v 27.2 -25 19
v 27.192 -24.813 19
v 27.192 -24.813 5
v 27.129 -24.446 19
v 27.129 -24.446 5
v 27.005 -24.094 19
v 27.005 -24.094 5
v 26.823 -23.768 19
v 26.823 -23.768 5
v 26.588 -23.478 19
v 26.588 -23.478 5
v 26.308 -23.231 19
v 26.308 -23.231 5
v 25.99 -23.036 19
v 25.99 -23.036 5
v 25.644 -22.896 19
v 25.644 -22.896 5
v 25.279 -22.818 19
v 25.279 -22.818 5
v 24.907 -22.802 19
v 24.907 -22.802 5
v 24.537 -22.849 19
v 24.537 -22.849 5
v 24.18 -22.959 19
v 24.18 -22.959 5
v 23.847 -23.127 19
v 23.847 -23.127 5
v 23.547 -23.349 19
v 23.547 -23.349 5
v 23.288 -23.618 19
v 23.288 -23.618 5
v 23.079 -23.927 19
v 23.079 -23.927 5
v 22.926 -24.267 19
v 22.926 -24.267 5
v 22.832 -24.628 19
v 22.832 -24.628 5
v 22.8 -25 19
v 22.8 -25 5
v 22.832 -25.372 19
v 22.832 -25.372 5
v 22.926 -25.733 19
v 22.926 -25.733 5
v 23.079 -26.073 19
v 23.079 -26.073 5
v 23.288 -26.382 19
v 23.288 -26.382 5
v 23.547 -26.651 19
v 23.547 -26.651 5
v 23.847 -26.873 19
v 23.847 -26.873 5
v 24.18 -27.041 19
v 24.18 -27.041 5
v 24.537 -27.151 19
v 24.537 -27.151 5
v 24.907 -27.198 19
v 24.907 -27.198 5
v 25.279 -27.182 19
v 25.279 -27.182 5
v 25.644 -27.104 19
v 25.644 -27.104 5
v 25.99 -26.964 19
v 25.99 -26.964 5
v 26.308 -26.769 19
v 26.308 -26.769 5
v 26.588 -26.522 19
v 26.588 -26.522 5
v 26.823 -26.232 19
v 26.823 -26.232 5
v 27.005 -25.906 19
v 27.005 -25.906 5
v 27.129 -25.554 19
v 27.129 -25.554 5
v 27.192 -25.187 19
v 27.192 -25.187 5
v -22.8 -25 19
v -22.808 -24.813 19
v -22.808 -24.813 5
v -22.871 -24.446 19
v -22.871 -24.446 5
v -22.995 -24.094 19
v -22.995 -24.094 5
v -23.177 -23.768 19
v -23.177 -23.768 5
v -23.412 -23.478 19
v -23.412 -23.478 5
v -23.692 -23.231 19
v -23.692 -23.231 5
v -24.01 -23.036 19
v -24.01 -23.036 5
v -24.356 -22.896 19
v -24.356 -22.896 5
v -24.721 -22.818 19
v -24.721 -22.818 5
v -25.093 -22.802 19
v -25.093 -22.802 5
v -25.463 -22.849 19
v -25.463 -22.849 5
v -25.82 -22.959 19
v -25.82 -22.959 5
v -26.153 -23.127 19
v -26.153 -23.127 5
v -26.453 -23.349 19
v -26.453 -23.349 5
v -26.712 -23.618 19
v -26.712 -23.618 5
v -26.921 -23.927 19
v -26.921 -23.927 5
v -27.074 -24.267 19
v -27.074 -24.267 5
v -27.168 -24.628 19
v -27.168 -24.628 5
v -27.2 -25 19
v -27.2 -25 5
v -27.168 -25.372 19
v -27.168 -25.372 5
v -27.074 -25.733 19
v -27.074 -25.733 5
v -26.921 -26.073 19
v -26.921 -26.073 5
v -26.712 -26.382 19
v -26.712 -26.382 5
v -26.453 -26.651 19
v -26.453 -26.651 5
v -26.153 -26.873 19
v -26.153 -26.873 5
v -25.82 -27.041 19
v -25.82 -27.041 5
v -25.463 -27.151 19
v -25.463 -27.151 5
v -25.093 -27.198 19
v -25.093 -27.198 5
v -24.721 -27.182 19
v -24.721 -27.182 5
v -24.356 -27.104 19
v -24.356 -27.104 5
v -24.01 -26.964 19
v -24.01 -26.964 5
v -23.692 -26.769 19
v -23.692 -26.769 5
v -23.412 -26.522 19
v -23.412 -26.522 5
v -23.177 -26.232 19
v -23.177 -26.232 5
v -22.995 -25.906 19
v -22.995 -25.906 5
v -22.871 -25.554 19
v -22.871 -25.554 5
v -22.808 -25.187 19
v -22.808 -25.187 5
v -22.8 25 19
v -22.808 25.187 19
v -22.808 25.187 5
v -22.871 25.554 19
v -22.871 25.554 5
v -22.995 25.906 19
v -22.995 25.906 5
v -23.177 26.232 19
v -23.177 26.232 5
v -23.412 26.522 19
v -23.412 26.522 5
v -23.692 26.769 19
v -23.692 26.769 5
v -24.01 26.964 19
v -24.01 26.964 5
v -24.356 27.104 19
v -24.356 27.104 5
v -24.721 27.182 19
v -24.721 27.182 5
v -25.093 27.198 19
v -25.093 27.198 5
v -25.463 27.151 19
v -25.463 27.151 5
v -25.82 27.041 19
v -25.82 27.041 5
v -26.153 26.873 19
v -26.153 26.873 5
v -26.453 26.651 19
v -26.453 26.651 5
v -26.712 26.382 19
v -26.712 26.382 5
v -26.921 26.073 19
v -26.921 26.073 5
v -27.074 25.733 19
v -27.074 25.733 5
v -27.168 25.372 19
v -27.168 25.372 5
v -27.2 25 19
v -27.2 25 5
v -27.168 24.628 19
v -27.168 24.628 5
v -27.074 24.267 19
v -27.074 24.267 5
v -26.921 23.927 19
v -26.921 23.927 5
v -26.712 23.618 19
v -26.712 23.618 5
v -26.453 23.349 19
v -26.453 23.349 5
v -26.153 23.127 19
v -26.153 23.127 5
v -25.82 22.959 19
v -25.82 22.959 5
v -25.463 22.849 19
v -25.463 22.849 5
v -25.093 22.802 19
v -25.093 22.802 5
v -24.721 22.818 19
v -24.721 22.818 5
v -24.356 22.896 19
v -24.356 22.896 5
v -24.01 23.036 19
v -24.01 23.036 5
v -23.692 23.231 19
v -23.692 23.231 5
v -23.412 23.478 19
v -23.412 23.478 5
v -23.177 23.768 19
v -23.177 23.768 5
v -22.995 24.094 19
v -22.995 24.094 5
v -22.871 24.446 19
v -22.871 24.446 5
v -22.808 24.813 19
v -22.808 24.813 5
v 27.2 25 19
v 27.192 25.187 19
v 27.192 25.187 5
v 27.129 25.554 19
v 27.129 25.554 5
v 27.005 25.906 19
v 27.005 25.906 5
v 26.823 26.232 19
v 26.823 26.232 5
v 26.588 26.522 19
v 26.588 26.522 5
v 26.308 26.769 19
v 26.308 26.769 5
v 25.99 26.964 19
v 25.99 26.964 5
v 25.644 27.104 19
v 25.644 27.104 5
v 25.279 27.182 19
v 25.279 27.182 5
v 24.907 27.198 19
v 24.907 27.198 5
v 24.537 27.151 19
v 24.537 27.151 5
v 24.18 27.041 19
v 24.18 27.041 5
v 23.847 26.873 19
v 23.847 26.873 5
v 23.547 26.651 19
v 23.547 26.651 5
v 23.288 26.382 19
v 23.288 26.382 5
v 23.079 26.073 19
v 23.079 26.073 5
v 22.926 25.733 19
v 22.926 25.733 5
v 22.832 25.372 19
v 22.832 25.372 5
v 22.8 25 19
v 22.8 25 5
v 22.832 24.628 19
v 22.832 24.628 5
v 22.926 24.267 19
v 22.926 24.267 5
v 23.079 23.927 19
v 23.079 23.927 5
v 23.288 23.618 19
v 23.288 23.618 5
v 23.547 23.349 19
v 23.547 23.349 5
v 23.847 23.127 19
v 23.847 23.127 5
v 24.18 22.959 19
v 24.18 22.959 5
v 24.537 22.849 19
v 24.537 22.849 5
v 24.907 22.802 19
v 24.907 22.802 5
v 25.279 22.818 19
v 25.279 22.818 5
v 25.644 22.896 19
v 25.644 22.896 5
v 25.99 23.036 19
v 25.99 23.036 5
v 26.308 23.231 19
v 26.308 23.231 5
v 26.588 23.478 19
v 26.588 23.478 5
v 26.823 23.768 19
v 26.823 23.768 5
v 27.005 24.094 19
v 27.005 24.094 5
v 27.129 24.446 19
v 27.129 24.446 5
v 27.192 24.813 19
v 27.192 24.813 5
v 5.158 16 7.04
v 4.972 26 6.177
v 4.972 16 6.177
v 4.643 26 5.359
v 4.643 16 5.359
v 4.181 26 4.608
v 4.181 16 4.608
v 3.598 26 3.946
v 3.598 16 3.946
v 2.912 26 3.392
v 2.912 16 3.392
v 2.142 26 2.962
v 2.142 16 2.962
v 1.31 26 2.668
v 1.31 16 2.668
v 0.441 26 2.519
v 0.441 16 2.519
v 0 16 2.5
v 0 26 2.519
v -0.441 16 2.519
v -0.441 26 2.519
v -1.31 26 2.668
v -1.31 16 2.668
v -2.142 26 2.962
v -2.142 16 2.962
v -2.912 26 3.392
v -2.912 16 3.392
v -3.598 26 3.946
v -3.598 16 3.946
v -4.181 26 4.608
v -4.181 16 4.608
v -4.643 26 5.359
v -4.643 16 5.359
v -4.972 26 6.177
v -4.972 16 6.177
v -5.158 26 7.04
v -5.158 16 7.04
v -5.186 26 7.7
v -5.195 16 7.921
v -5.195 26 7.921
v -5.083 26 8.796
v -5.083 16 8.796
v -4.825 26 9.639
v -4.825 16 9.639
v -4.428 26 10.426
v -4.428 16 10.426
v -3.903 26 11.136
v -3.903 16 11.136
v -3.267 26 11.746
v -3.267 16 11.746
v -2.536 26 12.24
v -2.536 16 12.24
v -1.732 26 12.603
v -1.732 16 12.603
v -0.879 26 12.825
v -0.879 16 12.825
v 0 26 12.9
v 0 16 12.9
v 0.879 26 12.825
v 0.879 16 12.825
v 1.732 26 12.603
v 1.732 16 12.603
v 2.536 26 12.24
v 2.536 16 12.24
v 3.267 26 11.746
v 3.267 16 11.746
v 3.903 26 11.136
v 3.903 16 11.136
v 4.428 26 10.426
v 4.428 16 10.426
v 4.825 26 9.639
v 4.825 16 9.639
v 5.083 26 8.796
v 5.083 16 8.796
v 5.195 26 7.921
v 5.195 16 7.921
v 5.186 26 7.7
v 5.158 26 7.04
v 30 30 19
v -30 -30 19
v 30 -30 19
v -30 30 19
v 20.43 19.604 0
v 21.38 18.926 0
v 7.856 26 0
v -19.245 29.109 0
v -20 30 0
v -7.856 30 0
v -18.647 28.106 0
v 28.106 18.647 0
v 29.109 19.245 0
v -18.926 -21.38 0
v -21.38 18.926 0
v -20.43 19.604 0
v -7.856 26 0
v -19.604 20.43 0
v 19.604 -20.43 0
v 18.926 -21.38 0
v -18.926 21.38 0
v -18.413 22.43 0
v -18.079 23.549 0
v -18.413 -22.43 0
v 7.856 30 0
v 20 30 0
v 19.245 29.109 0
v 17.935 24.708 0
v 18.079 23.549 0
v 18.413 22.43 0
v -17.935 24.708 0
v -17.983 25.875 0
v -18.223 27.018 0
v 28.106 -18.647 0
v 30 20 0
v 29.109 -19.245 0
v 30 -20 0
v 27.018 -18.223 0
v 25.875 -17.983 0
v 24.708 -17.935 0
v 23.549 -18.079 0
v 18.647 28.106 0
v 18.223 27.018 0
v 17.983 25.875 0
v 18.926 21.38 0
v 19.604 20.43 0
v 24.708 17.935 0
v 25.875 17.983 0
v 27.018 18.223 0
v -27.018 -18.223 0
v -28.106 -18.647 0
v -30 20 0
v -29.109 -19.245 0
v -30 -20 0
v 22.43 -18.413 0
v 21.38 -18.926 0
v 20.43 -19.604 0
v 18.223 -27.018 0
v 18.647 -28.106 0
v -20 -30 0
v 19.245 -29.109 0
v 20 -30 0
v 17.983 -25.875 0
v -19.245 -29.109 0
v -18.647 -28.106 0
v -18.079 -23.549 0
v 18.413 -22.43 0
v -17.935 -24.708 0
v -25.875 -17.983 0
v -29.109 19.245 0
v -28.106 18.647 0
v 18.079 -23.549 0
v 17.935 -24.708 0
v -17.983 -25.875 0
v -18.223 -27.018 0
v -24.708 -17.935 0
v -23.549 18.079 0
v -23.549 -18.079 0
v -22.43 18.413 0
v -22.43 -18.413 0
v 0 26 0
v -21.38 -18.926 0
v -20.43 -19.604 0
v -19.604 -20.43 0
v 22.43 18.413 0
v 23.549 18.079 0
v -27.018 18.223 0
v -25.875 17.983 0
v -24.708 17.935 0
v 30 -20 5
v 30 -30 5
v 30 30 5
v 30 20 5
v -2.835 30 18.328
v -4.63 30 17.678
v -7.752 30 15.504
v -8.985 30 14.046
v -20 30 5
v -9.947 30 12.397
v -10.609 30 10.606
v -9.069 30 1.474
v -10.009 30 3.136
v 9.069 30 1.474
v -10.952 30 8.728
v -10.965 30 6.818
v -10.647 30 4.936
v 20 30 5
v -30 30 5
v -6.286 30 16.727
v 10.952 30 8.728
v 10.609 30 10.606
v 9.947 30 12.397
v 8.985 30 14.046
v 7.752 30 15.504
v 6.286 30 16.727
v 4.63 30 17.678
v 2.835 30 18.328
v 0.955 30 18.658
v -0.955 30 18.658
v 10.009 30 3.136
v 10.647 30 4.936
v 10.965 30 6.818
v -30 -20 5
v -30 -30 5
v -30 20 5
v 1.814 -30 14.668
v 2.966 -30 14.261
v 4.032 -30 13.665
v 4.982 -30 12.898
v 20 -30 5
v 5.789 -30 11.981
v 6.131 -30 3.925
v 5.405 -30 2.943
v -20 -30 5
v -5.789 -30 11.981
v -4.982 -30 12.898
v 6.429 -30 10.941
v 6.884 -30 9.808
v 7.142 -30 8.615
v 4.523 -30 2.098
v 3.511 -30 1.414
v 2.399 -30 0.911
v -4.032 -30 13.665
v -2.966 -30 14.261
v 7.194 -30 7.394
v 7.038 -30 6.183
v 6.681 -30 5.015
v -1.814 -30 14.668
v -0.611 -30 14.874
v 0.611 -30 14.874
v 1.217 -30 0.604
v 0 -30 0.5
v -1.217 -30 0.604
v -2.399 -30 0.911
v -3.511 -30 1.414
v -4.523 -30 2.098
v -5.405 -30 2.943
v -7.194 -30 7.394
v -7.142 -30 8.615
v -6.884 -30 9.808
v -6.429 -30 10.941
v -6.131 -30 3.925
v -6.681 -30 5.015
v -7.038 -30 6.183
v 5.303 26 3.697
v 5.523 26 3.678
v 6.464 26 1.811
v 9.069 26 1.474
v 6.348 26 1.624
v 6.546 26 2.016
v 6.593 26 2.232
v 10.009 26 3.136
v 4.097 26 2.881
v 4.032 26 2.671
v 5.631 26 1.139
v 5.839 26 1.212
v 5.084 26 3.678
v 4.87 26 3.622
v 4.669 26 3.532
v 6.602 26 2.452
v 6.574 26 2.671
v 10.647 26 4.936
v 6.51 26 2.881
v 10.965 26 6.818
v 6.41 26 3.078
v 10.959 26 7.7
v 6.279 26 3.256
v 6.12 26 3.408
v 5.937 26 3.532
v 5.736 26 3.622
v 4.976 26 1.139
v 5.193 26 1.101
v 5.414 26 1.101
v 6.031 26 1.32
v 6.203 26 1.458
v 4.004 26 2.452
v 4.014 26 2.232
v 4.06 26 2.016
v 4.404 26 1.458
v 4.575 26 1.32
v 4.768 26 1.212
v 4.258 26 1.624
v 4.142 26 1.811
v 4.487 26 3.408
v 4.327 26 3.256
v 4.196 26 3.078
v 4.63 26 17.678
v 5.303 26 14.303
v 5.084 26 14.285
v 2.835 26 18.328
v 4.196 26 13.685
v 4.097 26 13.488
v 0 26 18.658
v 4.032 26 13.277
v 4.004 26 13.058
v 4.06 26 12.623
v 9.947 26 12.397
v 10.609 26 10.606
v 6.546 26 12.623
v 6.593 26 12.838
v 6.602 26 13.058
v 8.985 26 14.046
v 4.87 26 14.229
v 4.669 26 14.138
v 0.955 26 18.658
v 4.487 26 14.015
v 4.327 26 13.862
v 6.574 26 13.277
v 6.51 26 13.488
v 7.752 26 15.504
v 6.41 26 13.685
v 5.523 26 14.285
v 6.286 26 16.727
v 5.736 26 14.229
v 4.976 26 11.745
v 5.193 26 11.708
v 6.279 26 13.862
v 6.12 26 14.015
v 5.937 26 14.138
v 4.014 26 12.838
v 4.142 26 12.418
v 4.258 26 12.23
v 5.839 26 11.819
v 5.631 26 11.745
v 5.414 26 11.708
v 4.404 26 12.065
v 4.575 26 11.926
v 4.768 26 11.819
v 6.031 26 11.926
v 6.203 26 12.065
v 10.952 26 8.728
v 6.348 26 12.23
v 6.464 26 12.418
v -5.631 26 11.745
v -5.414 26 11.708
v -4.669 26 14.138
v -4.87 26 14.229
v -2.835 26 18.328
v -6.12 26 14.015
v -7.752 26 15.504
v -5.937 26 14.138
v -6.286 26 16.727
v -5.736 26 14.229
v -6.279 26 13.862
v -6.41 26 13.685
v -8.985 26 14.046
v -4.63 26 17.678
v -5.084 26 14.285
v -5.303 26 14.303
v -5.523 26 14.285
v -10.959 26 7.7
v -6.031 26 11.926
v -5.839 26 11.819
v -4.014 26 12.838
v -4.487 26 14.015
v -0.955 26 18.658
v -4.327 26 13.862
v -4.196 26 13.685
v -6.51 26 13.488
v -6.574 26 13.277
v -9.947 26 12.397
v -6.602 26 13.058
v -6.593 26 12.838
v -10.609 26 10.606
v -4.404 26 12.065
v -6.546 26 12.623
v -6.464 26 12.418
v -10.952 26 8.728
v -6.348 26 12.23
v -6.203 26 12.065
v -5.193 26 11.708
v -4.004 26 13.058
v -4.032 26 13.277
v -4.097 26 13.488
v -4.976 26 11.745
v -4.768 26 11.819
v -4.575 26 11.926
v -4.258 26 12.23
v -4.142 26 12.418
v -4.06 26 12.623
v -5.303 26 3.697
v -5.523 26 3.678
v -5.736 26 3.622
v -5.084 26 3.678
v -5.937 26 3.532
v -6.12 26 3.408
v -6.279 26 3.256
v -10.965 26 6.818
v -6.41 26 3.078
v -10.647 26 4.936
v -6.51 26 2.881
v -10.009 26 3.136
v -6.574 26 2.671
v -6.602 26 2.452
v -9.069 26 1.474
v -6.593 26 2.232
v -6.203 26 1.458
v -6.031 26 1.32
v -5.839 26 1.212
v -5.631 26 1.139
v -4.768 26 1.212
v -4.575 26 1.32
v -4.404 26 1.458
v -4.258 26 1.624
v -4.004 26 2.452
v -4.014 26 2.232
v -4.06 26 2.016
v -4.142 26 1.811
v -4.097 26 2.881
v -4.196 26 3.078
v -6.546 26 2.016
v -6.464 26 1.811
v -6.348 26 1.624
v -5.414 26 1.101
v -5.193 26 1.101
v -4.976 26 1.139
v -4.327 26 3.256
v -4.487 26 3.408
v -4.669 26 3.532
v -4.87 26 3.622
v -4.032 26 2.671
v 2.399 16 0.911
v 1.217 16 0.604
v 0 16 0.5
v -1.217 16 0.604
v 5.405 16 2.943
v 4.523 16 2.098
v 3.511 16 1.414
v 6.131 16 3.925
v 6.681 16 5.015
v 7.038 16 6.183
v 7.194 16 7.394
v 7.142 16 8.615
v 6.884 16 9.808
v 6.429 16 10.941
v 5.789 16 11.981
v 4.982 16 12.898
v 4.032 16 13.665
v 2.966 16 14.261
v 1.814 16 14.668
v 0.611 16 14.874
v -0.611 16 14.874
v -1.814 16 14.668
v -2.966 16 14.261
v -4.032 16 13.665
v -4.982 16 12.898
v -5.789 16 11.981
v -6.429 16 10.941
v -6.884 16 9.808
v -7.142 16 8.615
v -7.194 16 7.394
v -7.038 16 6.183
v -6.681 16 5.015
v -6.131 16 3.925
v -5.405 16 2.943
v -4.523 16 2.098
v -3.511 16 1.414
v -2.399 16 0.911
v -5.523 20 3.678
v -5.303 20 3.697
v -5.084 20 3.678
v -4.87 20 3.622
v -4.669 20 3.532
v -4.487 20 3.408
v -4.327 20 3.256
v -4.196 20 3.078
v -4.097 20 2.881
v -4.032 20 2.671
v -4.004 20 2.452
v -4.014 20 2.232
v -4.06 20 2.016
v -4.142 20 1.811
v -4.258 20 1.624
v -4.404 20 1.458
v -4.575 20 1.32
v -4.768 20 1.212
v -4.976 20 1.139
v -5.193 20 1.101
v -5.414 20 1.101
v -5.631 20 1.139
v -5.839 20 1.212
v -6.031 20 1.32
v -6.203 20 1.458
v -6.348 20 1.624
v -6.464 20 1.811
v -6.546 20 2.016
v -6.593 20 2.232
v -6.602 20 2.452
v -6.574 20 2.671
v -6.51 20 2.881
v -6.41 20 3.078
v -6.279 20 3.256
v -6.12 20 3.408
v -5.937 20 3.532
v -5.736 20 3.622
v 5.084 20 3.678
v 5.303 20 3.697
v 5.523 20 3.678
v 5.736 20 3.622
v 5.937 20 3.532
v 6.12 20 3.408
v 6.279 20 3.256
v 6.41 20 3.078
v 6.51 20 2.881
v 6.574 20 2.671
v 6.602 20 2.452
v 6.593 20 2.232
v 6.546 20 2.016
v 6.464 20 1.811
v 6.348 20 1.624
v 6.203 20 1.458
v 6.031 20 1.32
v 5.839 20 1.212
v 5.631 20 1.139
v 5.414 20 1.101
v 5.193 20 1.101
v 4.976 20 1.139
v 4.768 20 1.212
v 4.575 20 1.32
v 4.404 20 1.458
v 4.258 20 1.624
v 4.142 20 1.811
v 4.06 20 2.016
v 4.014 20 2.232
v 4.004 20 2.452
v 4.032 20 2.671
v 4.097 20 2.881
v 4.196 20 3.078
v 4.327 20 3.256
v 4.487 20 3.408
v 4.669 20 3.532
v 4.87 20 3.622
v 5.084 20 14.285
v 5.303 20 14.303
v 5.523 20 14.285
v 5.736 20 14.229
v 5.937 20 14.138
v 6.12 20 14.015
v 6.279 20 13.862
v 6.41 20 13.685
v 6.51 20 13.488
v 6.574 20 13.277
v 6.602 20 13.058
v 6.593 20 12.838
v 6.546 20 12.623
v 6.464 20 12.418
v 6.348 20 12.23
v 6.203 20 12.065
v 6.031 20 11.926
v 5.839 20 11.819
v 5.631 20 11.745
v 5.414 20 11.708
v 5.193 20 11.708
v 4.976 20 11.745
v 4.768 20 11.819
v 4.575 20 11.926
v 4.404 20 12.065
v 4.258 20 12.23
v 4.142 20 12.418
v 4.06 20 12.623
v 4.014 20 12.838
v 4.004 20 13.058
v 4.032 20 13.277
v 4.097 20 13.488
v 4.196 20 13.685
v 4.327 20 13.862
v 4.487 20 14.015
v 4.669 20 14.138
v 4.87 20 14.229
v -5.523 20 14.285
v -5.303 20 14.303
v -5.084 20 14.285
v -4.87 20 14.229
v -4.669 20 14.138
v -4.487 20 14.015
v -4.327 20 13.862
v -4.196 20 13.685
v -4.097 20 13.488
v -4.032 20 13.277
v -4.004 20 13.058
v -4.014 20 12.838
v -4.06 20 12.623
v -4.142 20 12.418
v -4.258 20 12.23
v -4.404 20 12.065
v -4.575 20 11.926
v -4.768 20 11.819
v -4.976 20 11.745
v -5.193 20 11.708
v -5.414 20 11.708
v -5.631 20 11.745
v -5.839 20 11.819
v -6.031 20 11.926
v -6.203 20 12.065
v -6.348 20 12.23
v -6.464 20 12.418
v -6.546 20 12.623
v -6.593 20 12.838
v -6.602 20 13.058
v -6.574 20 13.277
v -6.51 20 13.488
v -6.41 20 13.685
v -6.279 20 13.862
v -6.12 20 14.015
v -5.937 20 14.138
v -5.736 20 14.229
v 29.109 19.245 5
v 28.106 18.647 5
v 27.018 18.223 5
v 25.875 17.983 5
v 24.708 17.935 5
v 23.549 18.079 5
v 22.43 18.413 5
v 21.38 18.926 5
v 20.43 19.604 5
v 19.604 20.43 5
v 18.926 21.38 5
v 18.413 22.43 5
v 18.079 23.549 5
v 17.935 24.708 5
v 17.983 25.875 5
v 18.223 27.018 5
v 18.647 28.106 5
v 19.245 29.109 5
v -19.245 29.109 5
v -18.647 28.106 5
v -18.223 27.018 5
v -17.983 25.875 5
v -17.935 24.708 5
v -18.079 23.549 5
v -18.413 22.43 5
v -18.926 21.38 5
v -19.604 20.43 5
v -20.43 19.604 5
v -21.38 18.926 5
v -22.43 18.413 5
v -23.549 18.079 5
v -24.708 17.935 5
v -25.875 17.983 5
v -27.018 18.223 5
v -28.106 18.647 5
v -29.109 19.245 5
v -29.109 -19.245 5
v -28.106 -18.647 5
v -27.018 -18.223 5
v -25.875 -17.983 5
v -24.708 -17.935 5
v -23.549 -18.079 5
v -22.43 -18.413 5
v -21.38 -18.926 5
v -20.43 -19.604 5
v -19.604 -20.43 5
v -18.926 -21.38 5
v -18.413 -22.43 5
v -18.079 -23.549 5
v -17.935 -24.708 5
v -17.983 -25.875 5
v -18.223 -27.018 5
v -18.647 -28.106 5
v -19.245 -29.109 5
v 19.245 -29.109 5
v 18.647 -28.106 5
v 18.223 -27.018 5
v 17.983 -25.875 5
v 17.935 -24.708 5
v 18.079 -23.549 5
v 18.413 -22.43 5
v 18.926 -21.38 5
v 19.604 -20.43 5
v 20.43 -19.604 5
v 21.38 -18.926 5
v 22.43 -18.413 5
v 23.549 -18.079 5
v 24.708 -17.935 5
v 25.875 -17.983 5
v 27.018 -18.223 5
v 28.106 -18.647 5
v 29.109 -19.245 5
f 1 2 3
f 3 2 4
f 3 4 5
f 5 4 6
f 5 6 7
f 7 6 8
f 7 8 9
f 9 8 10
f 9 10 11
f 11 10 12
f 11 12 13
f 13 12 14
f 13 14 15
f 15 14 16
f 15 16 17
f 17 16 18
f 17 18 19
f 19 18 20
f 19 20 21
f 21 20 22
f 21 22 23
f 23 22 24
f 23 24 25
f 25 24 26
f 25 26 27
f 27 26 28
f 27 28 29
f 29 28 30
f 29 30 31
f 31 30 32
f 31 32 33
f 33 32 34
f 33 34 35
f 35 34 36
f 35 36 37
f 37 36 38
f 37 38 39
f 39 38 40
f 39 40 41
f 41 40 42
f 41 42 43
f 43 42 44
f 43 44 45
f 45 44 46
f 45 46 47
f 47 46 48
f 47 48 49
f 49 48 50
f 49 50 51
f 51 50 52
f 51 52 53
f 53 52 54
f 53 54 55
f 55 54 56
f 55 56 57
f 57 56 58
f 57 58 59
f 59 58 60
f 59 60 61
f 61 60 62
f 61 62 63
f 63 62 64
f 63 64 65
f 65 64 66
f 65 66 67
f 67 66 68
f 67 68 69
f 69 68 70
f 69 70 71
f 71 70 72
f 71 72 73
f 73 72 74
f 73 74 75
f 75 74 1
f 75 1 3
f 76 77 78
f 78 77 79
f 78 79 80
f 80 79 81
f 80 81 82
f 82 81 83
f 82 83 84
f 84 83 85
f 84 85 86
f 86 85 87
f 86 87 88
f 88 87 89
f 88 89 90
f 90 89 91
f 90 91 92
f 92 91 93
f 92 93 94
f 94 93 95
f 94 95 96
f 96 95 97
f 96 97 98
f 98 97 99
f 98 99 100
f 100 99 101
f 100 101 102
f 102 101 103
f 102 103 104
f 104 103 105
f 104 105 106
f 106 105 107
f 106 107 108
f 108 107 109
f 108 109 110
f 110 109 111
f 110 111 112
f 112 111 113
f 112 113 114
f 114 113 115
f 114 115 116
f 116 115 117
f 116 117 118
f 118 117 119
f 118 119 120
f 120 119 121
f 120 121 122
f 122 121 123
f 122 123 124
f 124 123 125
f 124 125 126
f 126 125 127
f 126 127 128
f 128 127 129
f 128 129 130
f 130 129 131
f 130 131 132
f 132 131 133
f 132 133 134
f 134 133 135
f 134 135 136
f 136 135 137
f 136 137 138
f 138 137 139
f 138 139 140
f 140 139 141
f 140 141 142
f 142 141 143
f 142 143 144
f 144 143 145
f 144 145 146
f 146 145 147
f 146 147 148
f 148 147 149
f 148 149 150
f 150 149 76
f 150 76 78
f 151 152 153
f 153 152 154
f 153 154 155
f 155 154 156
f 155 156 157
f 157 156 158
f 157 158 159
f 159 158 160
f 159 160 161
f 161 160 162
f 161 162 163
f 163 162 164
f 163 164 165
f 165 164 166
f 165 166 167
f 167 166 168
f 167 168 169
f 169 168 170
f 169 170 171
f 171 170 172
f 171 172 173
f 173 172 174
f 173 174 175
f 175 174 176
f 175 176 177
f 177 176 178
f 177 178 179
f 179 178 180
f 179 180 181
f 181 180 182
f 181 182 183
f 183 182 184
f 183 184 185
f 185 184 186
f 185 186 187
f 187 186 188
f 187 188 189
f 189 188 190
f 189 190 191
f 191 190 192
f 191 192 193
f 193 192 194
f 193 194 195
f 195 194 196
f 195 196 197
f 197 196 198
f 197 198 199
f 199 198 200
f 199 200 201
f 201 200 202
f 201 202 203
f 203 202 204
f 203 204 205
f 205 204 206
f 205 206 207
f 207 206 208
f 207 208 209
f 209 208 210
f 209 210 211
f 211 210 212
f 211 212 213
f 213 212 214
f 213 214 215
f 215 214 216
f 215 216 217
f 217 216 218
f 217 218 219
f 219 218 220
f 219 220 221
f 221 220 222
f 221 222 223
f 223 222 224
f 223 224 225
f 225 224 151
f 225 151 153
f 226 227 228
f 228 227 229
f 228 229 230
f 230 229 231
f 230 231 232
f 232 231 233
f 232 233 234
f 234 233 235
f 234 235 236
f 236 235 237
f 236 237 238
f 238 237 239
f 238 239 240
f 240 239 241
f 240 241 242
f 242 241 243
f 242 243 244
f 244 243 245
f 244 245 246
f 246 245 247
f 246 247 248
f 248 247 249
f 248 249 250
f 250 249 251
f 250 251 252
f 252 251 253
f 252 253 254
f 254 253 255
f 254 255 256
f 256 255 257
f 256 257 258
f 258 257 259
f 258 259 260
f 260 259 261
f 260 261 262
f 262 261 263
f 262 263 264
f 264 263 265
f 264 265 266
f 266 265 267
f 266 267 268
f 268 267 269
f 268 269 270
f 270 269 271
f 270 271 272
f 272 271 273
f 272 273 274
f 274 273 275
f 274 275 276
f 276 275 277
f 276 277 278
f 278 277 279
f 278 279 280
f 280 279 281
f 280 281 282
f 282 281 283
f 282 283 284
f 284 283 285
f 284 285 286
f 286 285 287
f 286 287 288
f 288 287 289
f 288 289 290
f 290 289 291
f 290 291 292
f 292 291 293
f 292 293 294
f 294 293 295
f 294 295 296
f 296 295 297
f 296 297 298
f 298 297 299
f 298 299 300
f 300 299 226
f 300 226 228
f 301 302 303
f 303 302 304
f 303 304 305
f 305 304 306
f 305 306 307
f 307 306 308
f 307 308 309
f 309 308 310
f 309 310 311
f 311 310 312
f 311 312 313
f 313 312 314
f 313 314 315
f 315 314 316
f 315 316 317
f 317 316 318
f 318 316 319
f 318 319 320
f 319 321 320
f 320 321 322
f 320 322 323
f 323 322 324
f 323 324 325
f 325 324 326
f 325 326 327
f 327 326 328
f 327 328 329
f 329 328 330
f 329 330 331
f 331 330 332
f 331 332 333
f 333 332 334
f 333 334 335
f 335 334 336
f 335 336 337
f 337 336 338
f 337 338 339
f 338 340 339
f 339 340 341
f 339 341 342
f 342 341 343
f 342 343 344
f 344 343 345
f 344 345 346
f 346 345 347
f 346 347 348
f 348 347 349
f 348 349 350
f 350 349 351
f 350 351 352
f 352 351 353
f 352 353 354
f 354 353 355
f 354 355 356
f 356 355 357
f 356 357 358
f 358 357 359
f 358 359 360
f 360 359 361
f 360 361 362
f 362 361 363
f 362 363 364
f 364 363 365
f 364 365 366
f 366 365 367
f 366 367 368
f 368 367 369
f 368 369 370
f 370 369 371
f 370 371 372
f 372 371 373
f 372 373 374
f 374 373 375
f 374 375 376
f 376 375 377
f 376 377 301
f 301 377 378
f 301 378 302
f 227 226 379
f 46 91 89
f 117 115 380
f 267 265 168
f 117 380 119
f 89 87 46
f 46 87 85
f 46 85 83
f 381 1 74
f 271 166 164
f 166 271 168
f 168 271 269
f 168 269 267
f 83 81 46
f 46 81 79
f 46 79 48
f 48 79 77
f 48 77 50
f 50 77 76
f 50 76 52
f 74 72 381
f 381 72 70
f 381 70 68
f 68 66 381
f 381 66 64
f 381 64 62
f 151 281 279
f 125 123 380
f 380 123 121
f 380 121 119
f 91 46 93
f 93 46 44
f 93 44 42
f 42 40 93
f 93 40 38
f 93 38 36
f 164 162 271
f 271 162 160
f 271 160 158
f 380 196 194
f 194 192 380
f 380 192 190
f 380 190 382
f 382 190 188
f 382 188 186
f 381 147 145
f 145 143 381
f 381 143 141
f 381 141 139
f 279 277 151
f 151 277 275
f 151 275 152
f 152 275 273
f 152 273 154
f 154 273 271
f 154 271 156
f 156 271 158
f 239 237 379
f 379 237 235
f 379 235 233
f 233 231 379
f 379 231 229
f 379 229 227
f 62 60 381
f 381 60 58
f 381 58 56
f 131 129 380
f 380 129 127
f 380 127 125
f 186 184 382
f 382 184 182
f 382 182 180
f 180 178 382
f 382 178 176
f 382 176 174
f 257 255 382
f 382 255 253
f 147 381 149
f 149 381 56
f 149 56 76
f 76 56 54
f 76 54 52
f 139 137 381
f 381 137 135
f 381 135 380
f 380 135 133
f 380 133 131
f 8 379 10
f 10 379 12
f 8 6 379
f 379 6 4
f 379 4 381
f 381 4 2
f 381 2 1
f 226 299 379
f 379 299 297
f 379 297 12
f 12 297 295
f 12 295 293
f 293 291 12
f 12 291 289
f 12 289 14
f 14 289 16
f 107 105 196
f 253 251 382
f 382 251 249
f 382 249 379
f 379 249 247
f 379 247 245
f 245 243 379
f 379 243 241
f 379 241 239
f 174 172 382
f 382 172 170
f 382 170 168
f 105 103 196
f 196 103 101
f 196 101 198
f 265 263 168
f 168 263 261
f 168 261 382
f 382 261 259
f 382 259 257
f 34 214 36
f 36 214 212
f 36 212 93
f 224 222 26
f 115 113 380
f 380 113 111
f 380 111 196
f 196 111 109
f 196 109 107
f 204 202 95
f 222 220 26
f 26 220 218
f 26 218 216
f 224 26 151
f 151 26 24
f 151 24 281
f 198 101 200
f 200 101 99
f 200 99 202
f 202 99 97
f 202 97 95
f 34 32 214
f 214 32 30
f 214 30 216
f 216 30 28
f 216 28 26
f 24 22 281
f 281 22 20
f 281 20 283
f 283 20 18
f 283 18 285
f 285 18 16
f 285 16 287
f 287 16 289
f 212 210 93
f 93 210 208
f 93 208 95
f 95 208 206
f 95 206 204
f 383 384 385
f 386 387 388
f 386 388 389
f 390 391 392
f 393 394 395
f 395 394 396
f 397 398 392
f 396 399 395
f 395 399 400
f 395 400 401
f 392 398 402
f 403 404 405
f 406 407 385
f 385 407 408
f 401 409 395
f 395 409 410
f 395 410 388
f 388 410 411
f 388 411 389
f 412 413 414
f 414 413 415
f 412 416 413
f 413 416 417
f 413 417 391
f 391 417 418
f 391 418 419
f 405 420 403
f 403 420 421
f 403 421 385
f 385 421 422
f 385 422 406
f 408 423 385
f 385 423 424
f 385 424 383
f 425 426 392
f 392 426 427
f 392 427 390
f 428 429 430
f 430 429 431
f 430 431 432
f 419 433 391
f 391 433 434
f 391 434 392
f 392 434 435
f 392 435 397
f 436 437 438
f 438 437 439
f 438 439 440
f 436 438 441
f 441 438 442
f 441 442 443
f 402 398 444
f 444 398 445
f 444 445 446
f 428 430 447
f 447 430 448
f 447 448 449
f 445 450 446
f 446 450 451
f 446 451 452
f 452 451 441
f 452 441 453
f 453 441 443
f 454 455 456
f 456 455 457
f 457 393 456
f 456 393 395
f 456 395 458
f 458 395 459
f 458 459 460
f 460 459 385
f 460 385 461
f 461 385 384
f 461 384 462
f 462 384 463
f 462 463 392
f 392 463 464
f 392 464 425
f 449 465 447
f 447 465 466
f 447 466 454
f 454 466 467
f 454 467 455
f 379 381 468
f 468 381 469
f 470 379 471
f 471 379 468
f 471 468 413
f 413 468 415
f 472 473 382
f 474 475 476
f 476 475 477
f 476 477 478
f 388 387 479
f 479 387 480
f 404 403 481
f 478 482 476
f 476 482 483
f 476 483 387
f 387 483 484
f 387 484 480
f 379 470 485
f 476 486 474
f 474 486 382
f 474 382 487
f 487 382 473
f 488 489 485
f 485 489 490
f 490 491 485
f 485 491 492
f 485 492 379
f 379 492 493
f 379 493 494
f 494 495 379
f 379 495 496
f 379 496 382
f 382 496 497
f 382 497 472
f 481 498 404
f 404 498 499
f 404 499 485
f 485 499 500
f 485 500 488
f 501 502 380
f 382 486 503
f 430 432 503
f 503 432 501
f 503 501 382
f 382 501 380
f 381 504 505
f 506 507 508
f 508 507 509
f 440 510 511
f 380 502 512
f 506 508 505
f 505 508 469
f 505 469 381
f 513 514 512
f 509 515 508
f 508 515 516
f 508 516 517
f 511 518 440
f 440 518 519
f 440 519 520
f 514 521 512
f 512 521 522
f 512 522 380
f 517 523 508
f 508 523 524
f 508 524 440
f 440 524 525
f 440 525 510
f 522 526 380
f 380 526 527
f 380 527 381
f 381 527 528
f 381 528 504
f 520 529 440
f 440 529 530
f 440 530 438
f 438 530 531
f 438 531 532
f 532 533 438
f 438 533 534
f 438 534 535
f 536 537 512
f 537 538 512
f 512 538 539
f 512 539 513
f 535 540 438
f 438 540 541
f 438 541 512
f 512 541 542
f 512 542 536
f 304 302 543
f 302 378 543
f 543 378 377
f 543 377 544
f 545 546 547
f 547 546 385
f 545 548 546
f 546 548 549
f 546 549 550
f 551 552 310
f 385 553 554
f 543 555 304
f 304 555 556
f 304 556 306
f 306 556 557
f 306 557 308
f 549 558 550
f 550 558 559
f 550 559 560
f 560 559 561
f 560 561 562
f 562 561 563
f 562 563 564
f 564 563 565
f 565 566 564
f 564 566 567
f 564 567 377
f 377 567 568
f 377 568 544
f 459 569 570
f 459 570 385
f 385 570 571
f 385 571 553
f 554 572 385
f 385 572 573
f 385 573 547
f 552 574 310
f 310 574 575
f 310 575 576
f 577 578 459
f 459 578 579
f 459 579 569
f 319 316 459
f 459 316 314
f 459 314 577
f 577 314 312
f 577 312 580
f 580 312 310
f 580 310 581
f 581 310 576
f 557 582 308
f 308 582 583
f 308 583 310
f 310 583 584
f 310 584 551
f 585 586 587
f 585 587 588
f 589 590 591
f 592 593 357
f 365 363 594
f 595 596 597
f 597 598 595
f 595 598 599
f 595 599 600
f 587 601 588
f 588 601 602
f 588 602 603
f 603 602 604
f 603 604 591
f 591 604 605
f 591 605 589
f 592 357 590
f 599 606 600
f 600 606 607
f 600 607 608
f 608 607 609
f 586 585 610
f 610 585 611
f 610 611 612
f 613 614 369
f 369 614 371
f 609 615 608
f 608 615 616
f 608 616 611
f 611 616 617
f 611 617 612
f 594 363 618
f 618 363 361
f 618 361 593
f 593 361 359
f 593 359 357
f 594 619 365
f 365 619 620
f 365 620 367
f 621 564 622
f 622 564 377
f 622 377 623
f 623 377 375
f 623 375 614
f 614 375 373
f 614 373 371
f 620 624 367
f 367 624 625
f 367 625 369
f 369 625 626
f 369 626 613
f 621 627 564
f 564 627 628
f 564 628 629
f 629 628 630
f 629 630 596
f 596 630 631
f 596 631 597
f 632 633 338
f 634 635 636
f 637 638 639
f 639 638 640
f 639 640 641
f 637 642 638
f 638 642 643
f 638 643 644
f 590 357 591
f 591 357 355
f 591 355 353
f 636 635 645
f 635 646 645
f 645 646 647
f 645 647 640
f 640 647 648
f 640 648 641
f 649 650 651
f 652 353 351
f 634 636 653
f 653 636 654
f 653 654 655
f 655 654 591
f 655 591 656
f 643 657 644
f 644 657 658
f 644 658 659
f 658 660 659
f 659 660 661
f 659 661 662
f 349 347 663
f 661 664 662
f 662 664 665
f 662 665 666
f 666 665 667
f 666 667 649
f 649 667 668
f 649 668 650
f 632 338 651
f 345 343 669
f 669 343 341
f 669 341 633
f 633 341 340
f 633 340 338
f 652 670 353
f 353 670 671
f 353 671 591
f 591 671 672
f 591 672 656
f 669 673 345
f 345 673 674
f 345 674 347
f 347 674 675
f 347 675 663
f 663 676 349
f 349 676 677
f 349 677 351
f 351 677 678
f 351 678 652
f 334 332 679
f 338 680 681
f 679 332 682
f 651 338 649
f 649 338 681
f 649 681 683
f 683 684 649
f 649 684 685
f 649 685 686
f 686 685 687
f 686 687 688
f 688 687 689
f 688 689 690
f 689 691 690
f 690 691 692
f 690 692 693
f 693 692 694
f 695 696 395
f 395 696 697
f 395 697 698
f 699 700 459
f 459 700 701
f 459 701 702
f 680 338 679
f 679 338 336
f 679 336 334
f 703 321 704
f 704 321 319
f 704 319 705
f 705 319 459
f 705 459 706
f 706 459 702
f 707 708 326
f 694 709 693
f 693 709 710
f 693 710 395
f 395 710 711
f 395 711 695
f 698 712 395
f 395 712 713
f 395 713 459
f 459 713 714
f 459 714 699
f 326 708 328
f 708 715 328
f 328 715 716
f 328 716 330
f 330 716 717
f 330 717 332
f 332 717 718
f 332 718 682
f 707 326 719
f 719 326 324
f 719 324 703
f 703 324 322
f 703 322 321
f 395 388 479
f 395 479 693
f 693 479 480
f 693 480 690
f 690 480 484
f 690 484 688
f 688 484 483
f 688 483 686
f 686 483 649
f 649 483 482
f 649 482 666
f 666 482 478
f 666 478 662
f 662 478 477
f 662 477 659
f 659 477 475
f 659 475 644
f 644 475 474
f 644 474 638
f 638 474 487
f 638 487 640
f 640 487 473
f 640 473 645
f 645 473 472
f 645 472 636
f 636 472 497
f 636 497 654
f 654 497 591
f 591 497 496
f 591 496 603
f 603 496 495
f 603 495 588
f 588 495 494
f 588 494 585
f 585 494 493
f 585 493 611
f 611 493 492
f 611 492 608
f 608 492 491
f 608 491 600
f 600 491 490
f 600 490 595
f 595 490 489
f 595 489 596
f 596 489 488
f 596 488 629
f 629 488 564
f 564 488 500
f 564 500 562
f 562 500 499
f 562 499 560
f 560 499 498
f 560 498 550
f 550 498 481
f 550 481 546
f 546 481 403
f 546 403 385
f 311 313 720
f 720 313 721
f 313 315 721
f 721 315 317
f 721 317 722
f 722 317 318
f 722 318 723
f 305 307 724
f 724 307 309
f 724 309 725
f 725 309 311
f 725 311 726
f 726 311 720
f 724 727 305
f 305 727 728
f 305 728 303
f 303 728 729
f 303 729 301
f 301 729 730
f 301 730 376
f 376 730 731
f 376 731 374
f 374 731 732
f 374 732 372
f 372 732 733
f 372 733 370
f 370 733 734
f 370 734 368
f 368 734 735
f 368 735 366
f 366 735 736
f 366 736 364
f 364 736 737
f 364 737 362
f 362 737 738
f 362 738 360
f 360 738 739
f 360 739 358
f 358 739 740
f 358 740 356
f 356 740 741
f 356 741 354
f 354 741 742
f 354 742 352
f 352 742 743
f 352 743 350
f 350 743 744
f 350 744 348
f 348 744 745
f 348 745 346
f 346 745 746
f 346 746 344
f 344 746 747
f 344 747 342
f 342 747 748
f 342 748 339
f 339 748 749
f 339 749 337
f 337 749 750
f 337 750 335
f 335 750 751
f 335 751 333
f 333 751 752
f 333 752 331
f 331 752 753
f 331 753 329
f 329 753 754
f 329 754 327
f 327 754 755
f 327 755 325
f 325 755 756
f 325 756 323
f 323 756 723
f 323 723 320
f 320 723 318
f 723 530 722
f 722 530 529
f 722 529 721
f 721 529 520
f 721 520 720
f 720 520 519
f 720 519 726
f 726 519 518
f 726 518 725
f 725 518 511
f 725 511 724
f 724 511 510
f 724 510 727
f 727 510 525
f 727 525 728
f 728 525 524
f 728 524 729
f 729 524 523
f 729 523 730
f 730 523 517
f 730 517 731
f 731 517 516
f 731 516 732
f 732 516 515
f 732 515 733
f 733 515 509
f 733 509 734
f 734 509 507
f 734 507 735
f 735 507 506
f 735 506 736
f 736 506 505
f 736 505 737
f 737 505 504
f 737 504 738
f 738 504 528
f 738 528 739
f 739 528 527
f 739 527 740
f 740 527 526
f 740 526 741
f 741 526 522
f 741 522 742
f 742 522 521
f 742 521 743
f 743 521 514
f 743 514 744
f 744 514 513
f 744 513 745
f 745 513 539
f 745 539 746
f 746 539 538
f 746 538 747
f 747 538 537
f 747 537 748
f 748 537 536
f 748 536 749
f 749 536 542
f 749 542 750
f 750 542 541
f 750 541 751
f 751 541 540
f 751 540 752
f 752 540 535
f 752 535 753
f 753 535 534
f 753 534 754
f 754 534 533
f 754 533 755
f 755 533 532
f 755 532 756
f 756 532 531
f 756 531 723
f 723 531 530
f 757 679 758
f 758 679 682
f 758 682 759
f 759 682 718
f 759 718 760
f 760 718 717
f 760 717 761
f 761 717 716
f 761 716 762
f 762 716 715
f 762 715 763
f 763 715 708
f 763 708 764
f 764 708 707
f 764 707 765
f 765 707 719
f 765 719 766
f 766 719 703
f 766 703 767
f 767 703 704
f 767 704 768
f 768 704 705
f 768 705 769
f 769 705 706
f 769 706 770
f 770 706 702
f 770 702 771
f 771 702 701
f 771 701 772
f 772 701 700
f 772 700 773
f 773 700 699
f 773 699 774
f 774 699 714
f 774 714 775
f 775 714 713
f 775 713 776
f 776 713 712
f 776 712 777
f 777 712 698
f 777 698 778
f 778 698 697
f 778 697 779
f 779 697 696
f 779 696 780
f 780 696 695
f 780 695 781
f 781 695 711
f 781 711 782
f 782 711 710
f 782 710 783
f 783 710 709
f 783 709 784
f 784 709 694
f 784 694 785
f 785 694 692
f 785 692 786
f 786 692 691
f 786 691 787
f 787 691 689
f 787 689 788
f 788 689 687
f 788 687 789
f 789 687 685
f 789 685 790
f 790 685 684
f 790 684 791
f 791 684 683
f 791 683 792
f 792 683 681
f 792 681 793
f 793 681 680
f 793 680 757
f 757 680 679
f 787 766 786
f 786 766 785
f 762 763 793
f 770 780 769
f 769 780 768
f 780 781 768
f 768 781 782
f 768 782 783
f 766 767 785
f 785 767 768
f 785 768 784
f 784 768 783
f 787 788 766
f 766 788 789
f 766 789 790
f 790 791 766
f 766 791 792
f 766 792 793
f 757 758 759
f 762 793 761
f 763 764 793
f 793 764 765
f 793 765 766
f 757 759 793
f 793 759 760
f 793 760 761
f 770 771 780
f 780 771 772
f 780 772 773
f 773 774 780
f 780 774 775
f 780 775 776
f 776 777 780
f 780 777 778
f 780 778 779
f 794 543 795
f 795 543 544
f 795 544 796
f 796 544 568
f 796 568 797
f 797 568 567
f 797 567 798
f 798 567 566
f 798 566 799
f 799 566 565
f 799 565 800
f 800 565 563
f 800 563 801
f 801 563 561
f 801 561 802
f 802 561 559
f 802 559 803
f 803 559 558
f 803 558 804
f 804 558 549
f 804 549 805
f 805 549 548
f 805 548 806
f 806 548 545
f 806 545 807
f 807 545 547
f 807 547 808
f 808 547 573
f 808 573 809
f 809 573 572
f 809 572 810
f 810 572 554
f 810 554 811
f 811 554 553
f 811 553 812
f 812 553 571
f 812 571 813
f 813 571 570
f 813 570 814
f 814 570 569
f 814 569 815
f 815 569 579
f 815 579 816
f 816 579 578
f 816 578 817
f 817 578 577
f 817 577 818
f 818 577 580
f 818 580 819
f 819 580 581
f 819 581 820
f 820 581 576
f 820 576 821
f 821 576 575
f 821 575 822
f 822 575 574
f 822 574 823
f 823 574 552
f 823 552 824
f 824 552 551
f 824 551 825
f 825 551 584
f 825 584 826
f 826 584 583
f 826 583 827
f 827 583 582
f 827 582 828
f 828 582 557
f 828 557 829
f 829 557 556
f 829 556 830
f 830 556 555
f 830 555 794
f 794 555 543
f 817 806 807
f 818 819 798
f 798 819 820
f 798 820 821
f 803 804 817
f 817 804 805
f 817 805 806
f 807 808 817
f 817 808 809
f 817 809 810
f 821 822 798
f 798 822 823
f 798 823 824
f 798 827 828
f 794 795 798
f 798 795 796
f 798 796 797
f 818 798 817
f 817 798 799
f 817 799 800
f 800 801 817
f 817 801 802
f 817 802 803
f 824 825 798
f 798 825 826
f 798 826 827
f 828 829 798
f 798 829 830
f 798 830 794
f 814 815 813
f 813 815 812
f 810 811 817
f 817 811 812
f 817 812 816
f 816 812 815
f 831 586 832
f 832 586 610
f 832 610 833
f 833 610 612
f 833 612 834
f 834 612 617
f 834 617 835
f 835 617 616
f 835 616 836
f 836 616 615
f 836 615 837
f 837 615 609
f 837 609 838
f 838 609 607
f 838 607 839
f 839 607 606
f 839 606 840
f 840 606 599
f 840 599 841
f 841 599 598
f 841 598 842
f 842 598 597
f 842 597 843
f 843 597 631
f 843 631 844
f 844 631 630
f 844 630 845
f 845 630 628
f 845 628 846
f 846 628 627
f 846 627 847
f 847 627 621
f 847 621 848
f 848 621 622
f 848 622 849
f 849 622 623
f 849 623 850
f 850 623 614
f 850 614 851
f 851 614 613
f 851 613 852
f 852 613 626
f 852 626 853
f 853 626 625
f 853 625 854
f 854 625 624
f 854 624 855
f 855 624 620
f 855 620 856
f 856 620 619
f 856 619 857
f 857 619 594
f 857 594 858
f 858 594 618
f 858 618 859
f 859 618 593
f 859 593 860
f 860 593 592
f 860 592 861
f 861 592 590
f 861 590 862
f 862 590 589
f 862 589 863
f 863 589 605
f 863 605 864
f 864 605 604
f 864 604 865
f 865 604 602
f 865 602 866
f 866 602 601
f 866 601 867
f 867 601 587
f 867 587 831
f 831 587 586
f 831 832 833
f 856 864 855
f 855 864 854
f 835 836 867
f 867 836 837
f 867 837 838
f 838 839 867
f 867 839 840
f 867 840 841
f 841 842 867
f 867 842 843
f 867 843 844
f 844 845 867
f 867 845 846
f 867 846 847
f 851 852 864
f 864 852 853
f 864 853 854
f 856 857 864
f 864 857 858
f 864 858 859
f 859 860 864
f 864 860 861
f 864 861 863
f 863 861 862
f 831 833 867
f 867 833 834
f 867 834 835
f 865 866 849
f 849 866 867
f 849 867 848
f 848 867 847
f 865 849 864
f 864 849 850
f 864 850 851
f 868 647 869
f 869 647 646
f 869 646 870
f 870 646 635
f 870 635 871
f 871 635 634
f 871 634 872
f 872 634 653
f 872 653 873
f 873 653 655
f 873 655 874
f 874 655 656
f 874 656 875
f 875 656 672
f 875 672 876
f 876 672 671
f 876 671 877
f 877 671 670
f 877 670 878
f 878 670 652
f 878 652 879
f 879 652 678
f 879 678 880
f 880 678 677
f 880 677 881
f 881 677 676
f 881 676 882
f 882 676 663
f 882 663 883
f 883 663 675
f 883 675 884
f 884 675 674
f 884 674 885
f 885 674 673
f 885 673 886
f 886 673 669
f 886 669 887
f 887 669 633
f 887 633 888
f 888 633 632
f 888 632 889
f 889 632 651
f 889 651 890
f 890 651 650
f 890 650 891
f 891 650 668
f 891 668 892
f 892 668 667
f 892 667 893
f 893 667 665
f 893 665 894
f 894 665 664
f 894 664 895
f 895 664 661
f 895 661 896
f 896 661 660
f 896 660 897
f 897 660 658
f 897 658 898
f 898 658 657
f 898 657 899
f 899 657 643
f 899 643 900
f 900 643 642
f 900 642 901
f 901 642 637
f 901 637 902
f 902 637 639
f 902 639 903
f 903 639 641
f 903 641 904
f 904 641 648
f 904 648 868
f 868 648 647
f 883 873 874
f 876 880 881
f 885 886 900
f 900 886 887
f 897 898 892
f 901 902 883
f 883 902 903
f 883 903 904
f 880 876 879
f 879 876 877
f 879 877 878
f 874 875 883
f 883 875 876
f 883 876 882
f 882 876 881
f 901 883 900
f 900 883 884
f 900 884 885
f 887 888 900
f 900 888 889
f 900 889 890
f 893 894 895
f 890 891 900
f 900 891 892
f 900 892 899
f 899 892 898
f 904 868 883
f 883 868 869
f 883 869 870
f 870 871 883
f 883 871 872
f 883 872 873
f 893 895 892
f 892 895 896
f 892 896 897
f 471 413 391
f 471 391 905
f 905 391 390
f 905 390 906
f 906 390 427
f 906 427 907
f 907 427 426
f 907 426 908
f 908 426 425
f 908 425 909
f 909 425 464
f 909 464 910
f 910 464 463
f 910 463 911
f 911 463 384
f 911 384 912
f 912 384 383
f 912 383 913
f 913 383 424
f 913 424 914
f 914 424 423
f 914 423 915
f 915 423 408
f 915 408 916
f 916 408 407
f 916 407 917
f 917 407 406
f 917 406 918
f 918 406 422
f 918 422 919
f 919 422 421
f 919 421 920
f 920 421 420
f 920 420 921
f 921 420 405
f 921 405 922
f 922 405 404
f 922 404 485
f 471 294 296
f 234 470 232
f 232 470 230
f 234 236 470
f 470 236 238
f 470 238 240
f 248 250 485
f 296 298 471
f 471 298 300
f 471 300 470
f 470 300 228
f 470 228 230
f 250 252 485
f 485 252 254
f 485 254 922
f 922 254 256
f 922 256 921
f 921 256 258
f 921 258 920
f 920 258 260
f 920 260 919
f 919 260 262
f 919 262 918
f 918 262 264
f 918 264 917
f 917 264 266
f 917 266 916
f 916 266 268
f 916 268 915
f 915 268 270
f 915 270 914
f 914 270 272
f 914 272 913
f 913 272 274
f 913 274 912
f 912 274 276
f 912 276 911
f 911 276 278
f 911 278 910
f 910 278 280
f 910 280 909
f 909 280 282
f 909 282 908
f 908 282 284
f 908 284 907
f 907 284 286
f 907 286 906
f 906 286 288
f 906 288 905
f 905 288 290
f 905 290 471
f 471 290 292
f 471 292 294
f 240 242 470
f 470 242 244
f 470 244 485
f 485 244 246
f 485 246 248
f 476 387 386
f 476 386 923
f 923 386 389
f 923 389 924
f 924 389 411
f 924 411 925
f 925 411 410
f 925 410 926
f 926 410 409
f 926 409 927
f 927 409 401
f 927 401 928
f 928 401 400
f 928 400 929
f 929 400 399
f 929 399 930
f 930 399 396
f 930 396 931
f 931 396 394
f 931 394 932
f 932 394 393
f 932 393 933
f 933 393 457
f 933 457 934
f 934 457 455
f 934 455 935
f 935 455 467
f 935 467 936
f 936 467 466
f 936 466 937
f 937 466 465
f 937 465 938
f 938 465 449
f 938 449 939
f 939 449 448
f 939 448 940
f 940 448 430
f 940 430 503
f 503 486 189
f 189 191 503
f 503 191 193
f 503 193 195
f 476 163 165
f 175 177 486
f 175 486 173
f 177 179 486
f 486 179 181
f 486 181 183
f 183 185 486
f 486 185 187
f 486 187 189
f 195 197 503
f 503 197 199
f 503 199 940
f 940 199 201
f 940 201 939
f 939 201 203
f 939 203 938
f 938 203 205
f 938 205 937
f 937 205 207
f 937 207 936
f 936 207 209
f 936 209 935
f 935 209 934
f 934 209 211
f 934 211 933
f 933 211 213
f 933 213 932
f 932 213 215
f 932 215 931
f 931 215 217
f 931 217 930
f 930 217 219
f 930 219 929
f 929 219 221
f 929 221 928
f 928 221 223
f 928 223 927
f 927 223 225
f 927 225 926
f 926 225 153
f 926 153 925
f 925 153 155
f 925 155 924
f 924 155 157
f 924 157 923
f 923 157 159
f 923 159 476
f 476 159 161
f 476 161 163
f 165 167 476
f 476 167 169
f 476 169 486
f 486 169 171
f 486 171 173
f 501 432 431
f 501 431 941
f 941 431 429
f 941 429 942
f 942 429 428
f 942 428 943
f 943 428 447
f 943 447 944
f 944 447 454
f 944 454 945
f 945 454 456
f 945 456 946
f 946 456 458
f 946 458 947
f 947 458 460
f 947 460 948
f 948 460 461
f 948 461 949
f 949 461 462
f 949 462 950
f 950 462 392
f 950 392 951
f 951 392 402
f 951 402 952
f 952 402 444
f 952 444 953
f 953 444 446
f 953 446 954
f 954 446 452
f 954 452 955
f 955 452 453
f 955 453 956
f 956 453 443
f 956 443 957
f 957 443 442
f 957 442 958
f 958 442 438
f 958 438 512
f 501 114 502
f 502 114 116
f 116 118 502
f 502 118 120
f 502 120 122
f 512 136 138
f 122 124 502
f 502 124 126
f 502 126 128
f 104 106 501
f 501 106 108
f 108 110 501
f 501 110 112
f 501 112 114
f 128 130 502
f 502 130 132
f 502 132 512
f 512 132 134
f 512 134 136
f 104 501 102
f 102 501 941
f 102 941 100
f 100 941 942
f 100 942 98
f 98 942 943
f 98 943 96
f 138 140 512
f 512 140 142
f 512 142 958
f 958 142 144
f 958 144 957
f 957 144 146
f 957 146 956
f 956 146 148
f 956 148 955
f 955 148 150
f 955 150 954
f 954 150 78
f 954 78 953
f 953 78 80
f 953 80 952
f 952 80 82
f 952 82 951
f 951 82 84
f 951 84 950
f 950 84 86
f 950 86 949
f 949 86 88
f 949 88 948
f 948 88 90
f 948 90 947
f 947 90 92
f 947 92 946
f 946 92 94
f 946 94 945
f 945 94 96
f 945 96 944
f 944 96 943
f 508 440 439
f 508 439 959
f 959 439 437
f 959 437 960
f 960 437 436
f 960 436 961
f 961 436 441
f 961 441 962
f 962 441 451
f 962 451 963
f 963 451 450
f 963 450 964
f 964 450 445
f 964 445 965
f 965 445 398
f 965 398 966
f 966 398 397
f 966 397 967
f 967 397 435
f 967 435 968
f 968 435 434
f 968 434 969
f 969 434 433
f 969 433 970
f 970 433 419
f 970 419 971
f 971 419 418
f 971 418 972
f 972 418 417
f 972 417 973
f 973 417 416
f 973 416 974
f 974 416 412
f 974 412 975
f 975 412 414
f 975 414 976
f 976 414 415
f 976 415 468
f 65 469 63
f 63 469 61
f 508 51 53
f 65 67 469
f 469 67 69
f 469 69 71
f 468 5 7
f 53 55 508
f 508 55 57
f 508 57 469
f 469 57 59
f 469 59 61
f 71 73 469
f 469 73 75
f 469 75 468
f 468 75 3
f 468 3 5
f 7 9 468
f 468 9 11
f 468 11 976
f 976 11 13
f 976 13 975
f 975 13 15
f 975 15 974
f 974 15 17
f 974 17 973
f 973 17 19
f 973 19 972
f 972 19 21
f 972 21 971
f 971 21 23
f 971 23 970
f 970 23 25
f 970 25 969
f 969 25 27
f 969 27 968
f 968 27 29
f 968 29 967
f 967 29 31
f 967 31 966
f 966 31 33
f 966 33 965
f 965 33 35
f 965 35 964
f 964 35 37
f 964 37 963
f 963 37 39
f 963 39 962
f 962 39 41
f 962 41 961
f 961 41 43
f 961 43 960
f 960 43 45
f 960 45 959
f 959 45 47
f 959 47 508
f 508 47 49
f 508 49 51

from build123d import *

# Parameters (mm, degrees)
SKETCH1_W           = 60
SKETCH1_H           = 60
SKETCH1_R           = 2.2
BOSS_EXTRUDE1_DEPTH = 19
SKETCH2_R           = 11
CUT_EXTRUDE1_DEPTH  = 4
CUT_EXTRUDE2_REACH  = 58
SKETCH3_R           = 5.2
SKETCH4_R           = 7.2
CUT_EXTRUDE3_DEPTH  = 46
SKETCH5_R           = 1.3
CUT_EXTRUDE4_DEPTH  = 6
SKETCH6_R           = 7.071067812
CUT_EXTRUDE5_DEPTH  = 5


with BuildPart() as part:
    # Sketch1 → Boss-Extrude1 (new body)
    with BuildSketch(Plane.XY):
        Rectangle(SKETCH1_W, SKETCH1_H)
        with Locations((-25, 25)):
            Circle(SKETCH1_R, mode=Mode.SUBTRACT)
        with Locations((25, 25)):
            Circle(SKETCH1_R, mode=Mode.SUBTRACT)
        with Locations((25, -25)):
            Circle(SKETCH1_R, mode=Mode.SUBTRACT)
        with Locations((-25, -25)):
            Circle(SKETCH1_R, mode=Mode.SUBTRACT)
    extrude(amount=BOSS_EXTRUDE1_DEPTH)

    # Sketch2 → Cut-Extrude1 (cut)
    with BuildSketch(Plane(origin=(0, 30, 0), x_dir=(1, 0, 0), z_dir=(0, 1, 0))):
        with Locations((0, -7.7)):
            Circle(SKETCH2_R)
    extrude(amount=-CUT_EXTRUDE1_DEPTH, mode=Mode.SUBTRACT)

    # Sketch3 → Cut-Extrude2 (cut, up to next)
    with BuildSketch(Plane(origin=(0, 26, 0), x_dir=(1, 0, 0), z_dir=(0, 1, 0)), mode=Mode.PRIVATE) as cut_extrude2_sk1:
        with Locations((0, -7.7)):
            Circle(SKETCH3_R)
    cut_extrude2_tool1 = extrude(cut_extrude2_sk1.sketch, amount=-CUT_EXTRUDE2_REACH, mode=Mode.PRIVATE) & part.part
    add(cut_extrude2_tool1.solids().sort_by_distance((0, 26, 7.7))[0], mode=Mode.SUBTRACT)

    # Sketch4 → Cut-Extrude3 (cut)
    with BuildSketch(Plane.XZ.offset(30)):
        with Locations((0, 7.7)):
            Circle(SKETCH4_R)
    extrude(amount=-CUT_EXTRUDE3_DEPTH, mode=Mode.SUBTRACT)

    # Sketch5 → Cut-Extrude4 (cut)
    with BuildSketch(Plane(origin=(0, 26, 0), x_dir=(1, 0, 0), z_dir=(0, 1, 0))):
        with Locations((-5.303300859, -2.396699141)):
            Circle(SKETCH5_R)
        with Locations((5.303300859, -2.396699141)):
            Circle(SKETCH5_R)
        with Locations((5.303300859, -13.003300859)):
            Circle(SKETCH5_R)
        with Locations((-5.303300859, -13.003300859)):
            Circle(SKETCH5_R)
    extrude(amount=-CUT_EXTRUDE4_DEPTH, mode=Mode.SUBTRACT)

    # Sketch6 → Cut-Extrude5 (cut)
    with BuildSketch(Plane(origin=(0, 0, 0), x_dir=(-1, 0, 0), z_dir=(0, 0, -1))):
        with Locations((-25, 25)):
            Circle(SKETCH6_R)
        with Locations((25, 25)):
            Circle(SKETCH6_R)
        with Locations((25, -25)):
            Circle(SKETCH6_R)
        with Locations((-25, -25)):
            Circle(SKETCH6_R)
    extrude(amount=-CUT_EXTRUDE5_DEPTH, mode=Mode.SUBTRACT)


solid = part.part
